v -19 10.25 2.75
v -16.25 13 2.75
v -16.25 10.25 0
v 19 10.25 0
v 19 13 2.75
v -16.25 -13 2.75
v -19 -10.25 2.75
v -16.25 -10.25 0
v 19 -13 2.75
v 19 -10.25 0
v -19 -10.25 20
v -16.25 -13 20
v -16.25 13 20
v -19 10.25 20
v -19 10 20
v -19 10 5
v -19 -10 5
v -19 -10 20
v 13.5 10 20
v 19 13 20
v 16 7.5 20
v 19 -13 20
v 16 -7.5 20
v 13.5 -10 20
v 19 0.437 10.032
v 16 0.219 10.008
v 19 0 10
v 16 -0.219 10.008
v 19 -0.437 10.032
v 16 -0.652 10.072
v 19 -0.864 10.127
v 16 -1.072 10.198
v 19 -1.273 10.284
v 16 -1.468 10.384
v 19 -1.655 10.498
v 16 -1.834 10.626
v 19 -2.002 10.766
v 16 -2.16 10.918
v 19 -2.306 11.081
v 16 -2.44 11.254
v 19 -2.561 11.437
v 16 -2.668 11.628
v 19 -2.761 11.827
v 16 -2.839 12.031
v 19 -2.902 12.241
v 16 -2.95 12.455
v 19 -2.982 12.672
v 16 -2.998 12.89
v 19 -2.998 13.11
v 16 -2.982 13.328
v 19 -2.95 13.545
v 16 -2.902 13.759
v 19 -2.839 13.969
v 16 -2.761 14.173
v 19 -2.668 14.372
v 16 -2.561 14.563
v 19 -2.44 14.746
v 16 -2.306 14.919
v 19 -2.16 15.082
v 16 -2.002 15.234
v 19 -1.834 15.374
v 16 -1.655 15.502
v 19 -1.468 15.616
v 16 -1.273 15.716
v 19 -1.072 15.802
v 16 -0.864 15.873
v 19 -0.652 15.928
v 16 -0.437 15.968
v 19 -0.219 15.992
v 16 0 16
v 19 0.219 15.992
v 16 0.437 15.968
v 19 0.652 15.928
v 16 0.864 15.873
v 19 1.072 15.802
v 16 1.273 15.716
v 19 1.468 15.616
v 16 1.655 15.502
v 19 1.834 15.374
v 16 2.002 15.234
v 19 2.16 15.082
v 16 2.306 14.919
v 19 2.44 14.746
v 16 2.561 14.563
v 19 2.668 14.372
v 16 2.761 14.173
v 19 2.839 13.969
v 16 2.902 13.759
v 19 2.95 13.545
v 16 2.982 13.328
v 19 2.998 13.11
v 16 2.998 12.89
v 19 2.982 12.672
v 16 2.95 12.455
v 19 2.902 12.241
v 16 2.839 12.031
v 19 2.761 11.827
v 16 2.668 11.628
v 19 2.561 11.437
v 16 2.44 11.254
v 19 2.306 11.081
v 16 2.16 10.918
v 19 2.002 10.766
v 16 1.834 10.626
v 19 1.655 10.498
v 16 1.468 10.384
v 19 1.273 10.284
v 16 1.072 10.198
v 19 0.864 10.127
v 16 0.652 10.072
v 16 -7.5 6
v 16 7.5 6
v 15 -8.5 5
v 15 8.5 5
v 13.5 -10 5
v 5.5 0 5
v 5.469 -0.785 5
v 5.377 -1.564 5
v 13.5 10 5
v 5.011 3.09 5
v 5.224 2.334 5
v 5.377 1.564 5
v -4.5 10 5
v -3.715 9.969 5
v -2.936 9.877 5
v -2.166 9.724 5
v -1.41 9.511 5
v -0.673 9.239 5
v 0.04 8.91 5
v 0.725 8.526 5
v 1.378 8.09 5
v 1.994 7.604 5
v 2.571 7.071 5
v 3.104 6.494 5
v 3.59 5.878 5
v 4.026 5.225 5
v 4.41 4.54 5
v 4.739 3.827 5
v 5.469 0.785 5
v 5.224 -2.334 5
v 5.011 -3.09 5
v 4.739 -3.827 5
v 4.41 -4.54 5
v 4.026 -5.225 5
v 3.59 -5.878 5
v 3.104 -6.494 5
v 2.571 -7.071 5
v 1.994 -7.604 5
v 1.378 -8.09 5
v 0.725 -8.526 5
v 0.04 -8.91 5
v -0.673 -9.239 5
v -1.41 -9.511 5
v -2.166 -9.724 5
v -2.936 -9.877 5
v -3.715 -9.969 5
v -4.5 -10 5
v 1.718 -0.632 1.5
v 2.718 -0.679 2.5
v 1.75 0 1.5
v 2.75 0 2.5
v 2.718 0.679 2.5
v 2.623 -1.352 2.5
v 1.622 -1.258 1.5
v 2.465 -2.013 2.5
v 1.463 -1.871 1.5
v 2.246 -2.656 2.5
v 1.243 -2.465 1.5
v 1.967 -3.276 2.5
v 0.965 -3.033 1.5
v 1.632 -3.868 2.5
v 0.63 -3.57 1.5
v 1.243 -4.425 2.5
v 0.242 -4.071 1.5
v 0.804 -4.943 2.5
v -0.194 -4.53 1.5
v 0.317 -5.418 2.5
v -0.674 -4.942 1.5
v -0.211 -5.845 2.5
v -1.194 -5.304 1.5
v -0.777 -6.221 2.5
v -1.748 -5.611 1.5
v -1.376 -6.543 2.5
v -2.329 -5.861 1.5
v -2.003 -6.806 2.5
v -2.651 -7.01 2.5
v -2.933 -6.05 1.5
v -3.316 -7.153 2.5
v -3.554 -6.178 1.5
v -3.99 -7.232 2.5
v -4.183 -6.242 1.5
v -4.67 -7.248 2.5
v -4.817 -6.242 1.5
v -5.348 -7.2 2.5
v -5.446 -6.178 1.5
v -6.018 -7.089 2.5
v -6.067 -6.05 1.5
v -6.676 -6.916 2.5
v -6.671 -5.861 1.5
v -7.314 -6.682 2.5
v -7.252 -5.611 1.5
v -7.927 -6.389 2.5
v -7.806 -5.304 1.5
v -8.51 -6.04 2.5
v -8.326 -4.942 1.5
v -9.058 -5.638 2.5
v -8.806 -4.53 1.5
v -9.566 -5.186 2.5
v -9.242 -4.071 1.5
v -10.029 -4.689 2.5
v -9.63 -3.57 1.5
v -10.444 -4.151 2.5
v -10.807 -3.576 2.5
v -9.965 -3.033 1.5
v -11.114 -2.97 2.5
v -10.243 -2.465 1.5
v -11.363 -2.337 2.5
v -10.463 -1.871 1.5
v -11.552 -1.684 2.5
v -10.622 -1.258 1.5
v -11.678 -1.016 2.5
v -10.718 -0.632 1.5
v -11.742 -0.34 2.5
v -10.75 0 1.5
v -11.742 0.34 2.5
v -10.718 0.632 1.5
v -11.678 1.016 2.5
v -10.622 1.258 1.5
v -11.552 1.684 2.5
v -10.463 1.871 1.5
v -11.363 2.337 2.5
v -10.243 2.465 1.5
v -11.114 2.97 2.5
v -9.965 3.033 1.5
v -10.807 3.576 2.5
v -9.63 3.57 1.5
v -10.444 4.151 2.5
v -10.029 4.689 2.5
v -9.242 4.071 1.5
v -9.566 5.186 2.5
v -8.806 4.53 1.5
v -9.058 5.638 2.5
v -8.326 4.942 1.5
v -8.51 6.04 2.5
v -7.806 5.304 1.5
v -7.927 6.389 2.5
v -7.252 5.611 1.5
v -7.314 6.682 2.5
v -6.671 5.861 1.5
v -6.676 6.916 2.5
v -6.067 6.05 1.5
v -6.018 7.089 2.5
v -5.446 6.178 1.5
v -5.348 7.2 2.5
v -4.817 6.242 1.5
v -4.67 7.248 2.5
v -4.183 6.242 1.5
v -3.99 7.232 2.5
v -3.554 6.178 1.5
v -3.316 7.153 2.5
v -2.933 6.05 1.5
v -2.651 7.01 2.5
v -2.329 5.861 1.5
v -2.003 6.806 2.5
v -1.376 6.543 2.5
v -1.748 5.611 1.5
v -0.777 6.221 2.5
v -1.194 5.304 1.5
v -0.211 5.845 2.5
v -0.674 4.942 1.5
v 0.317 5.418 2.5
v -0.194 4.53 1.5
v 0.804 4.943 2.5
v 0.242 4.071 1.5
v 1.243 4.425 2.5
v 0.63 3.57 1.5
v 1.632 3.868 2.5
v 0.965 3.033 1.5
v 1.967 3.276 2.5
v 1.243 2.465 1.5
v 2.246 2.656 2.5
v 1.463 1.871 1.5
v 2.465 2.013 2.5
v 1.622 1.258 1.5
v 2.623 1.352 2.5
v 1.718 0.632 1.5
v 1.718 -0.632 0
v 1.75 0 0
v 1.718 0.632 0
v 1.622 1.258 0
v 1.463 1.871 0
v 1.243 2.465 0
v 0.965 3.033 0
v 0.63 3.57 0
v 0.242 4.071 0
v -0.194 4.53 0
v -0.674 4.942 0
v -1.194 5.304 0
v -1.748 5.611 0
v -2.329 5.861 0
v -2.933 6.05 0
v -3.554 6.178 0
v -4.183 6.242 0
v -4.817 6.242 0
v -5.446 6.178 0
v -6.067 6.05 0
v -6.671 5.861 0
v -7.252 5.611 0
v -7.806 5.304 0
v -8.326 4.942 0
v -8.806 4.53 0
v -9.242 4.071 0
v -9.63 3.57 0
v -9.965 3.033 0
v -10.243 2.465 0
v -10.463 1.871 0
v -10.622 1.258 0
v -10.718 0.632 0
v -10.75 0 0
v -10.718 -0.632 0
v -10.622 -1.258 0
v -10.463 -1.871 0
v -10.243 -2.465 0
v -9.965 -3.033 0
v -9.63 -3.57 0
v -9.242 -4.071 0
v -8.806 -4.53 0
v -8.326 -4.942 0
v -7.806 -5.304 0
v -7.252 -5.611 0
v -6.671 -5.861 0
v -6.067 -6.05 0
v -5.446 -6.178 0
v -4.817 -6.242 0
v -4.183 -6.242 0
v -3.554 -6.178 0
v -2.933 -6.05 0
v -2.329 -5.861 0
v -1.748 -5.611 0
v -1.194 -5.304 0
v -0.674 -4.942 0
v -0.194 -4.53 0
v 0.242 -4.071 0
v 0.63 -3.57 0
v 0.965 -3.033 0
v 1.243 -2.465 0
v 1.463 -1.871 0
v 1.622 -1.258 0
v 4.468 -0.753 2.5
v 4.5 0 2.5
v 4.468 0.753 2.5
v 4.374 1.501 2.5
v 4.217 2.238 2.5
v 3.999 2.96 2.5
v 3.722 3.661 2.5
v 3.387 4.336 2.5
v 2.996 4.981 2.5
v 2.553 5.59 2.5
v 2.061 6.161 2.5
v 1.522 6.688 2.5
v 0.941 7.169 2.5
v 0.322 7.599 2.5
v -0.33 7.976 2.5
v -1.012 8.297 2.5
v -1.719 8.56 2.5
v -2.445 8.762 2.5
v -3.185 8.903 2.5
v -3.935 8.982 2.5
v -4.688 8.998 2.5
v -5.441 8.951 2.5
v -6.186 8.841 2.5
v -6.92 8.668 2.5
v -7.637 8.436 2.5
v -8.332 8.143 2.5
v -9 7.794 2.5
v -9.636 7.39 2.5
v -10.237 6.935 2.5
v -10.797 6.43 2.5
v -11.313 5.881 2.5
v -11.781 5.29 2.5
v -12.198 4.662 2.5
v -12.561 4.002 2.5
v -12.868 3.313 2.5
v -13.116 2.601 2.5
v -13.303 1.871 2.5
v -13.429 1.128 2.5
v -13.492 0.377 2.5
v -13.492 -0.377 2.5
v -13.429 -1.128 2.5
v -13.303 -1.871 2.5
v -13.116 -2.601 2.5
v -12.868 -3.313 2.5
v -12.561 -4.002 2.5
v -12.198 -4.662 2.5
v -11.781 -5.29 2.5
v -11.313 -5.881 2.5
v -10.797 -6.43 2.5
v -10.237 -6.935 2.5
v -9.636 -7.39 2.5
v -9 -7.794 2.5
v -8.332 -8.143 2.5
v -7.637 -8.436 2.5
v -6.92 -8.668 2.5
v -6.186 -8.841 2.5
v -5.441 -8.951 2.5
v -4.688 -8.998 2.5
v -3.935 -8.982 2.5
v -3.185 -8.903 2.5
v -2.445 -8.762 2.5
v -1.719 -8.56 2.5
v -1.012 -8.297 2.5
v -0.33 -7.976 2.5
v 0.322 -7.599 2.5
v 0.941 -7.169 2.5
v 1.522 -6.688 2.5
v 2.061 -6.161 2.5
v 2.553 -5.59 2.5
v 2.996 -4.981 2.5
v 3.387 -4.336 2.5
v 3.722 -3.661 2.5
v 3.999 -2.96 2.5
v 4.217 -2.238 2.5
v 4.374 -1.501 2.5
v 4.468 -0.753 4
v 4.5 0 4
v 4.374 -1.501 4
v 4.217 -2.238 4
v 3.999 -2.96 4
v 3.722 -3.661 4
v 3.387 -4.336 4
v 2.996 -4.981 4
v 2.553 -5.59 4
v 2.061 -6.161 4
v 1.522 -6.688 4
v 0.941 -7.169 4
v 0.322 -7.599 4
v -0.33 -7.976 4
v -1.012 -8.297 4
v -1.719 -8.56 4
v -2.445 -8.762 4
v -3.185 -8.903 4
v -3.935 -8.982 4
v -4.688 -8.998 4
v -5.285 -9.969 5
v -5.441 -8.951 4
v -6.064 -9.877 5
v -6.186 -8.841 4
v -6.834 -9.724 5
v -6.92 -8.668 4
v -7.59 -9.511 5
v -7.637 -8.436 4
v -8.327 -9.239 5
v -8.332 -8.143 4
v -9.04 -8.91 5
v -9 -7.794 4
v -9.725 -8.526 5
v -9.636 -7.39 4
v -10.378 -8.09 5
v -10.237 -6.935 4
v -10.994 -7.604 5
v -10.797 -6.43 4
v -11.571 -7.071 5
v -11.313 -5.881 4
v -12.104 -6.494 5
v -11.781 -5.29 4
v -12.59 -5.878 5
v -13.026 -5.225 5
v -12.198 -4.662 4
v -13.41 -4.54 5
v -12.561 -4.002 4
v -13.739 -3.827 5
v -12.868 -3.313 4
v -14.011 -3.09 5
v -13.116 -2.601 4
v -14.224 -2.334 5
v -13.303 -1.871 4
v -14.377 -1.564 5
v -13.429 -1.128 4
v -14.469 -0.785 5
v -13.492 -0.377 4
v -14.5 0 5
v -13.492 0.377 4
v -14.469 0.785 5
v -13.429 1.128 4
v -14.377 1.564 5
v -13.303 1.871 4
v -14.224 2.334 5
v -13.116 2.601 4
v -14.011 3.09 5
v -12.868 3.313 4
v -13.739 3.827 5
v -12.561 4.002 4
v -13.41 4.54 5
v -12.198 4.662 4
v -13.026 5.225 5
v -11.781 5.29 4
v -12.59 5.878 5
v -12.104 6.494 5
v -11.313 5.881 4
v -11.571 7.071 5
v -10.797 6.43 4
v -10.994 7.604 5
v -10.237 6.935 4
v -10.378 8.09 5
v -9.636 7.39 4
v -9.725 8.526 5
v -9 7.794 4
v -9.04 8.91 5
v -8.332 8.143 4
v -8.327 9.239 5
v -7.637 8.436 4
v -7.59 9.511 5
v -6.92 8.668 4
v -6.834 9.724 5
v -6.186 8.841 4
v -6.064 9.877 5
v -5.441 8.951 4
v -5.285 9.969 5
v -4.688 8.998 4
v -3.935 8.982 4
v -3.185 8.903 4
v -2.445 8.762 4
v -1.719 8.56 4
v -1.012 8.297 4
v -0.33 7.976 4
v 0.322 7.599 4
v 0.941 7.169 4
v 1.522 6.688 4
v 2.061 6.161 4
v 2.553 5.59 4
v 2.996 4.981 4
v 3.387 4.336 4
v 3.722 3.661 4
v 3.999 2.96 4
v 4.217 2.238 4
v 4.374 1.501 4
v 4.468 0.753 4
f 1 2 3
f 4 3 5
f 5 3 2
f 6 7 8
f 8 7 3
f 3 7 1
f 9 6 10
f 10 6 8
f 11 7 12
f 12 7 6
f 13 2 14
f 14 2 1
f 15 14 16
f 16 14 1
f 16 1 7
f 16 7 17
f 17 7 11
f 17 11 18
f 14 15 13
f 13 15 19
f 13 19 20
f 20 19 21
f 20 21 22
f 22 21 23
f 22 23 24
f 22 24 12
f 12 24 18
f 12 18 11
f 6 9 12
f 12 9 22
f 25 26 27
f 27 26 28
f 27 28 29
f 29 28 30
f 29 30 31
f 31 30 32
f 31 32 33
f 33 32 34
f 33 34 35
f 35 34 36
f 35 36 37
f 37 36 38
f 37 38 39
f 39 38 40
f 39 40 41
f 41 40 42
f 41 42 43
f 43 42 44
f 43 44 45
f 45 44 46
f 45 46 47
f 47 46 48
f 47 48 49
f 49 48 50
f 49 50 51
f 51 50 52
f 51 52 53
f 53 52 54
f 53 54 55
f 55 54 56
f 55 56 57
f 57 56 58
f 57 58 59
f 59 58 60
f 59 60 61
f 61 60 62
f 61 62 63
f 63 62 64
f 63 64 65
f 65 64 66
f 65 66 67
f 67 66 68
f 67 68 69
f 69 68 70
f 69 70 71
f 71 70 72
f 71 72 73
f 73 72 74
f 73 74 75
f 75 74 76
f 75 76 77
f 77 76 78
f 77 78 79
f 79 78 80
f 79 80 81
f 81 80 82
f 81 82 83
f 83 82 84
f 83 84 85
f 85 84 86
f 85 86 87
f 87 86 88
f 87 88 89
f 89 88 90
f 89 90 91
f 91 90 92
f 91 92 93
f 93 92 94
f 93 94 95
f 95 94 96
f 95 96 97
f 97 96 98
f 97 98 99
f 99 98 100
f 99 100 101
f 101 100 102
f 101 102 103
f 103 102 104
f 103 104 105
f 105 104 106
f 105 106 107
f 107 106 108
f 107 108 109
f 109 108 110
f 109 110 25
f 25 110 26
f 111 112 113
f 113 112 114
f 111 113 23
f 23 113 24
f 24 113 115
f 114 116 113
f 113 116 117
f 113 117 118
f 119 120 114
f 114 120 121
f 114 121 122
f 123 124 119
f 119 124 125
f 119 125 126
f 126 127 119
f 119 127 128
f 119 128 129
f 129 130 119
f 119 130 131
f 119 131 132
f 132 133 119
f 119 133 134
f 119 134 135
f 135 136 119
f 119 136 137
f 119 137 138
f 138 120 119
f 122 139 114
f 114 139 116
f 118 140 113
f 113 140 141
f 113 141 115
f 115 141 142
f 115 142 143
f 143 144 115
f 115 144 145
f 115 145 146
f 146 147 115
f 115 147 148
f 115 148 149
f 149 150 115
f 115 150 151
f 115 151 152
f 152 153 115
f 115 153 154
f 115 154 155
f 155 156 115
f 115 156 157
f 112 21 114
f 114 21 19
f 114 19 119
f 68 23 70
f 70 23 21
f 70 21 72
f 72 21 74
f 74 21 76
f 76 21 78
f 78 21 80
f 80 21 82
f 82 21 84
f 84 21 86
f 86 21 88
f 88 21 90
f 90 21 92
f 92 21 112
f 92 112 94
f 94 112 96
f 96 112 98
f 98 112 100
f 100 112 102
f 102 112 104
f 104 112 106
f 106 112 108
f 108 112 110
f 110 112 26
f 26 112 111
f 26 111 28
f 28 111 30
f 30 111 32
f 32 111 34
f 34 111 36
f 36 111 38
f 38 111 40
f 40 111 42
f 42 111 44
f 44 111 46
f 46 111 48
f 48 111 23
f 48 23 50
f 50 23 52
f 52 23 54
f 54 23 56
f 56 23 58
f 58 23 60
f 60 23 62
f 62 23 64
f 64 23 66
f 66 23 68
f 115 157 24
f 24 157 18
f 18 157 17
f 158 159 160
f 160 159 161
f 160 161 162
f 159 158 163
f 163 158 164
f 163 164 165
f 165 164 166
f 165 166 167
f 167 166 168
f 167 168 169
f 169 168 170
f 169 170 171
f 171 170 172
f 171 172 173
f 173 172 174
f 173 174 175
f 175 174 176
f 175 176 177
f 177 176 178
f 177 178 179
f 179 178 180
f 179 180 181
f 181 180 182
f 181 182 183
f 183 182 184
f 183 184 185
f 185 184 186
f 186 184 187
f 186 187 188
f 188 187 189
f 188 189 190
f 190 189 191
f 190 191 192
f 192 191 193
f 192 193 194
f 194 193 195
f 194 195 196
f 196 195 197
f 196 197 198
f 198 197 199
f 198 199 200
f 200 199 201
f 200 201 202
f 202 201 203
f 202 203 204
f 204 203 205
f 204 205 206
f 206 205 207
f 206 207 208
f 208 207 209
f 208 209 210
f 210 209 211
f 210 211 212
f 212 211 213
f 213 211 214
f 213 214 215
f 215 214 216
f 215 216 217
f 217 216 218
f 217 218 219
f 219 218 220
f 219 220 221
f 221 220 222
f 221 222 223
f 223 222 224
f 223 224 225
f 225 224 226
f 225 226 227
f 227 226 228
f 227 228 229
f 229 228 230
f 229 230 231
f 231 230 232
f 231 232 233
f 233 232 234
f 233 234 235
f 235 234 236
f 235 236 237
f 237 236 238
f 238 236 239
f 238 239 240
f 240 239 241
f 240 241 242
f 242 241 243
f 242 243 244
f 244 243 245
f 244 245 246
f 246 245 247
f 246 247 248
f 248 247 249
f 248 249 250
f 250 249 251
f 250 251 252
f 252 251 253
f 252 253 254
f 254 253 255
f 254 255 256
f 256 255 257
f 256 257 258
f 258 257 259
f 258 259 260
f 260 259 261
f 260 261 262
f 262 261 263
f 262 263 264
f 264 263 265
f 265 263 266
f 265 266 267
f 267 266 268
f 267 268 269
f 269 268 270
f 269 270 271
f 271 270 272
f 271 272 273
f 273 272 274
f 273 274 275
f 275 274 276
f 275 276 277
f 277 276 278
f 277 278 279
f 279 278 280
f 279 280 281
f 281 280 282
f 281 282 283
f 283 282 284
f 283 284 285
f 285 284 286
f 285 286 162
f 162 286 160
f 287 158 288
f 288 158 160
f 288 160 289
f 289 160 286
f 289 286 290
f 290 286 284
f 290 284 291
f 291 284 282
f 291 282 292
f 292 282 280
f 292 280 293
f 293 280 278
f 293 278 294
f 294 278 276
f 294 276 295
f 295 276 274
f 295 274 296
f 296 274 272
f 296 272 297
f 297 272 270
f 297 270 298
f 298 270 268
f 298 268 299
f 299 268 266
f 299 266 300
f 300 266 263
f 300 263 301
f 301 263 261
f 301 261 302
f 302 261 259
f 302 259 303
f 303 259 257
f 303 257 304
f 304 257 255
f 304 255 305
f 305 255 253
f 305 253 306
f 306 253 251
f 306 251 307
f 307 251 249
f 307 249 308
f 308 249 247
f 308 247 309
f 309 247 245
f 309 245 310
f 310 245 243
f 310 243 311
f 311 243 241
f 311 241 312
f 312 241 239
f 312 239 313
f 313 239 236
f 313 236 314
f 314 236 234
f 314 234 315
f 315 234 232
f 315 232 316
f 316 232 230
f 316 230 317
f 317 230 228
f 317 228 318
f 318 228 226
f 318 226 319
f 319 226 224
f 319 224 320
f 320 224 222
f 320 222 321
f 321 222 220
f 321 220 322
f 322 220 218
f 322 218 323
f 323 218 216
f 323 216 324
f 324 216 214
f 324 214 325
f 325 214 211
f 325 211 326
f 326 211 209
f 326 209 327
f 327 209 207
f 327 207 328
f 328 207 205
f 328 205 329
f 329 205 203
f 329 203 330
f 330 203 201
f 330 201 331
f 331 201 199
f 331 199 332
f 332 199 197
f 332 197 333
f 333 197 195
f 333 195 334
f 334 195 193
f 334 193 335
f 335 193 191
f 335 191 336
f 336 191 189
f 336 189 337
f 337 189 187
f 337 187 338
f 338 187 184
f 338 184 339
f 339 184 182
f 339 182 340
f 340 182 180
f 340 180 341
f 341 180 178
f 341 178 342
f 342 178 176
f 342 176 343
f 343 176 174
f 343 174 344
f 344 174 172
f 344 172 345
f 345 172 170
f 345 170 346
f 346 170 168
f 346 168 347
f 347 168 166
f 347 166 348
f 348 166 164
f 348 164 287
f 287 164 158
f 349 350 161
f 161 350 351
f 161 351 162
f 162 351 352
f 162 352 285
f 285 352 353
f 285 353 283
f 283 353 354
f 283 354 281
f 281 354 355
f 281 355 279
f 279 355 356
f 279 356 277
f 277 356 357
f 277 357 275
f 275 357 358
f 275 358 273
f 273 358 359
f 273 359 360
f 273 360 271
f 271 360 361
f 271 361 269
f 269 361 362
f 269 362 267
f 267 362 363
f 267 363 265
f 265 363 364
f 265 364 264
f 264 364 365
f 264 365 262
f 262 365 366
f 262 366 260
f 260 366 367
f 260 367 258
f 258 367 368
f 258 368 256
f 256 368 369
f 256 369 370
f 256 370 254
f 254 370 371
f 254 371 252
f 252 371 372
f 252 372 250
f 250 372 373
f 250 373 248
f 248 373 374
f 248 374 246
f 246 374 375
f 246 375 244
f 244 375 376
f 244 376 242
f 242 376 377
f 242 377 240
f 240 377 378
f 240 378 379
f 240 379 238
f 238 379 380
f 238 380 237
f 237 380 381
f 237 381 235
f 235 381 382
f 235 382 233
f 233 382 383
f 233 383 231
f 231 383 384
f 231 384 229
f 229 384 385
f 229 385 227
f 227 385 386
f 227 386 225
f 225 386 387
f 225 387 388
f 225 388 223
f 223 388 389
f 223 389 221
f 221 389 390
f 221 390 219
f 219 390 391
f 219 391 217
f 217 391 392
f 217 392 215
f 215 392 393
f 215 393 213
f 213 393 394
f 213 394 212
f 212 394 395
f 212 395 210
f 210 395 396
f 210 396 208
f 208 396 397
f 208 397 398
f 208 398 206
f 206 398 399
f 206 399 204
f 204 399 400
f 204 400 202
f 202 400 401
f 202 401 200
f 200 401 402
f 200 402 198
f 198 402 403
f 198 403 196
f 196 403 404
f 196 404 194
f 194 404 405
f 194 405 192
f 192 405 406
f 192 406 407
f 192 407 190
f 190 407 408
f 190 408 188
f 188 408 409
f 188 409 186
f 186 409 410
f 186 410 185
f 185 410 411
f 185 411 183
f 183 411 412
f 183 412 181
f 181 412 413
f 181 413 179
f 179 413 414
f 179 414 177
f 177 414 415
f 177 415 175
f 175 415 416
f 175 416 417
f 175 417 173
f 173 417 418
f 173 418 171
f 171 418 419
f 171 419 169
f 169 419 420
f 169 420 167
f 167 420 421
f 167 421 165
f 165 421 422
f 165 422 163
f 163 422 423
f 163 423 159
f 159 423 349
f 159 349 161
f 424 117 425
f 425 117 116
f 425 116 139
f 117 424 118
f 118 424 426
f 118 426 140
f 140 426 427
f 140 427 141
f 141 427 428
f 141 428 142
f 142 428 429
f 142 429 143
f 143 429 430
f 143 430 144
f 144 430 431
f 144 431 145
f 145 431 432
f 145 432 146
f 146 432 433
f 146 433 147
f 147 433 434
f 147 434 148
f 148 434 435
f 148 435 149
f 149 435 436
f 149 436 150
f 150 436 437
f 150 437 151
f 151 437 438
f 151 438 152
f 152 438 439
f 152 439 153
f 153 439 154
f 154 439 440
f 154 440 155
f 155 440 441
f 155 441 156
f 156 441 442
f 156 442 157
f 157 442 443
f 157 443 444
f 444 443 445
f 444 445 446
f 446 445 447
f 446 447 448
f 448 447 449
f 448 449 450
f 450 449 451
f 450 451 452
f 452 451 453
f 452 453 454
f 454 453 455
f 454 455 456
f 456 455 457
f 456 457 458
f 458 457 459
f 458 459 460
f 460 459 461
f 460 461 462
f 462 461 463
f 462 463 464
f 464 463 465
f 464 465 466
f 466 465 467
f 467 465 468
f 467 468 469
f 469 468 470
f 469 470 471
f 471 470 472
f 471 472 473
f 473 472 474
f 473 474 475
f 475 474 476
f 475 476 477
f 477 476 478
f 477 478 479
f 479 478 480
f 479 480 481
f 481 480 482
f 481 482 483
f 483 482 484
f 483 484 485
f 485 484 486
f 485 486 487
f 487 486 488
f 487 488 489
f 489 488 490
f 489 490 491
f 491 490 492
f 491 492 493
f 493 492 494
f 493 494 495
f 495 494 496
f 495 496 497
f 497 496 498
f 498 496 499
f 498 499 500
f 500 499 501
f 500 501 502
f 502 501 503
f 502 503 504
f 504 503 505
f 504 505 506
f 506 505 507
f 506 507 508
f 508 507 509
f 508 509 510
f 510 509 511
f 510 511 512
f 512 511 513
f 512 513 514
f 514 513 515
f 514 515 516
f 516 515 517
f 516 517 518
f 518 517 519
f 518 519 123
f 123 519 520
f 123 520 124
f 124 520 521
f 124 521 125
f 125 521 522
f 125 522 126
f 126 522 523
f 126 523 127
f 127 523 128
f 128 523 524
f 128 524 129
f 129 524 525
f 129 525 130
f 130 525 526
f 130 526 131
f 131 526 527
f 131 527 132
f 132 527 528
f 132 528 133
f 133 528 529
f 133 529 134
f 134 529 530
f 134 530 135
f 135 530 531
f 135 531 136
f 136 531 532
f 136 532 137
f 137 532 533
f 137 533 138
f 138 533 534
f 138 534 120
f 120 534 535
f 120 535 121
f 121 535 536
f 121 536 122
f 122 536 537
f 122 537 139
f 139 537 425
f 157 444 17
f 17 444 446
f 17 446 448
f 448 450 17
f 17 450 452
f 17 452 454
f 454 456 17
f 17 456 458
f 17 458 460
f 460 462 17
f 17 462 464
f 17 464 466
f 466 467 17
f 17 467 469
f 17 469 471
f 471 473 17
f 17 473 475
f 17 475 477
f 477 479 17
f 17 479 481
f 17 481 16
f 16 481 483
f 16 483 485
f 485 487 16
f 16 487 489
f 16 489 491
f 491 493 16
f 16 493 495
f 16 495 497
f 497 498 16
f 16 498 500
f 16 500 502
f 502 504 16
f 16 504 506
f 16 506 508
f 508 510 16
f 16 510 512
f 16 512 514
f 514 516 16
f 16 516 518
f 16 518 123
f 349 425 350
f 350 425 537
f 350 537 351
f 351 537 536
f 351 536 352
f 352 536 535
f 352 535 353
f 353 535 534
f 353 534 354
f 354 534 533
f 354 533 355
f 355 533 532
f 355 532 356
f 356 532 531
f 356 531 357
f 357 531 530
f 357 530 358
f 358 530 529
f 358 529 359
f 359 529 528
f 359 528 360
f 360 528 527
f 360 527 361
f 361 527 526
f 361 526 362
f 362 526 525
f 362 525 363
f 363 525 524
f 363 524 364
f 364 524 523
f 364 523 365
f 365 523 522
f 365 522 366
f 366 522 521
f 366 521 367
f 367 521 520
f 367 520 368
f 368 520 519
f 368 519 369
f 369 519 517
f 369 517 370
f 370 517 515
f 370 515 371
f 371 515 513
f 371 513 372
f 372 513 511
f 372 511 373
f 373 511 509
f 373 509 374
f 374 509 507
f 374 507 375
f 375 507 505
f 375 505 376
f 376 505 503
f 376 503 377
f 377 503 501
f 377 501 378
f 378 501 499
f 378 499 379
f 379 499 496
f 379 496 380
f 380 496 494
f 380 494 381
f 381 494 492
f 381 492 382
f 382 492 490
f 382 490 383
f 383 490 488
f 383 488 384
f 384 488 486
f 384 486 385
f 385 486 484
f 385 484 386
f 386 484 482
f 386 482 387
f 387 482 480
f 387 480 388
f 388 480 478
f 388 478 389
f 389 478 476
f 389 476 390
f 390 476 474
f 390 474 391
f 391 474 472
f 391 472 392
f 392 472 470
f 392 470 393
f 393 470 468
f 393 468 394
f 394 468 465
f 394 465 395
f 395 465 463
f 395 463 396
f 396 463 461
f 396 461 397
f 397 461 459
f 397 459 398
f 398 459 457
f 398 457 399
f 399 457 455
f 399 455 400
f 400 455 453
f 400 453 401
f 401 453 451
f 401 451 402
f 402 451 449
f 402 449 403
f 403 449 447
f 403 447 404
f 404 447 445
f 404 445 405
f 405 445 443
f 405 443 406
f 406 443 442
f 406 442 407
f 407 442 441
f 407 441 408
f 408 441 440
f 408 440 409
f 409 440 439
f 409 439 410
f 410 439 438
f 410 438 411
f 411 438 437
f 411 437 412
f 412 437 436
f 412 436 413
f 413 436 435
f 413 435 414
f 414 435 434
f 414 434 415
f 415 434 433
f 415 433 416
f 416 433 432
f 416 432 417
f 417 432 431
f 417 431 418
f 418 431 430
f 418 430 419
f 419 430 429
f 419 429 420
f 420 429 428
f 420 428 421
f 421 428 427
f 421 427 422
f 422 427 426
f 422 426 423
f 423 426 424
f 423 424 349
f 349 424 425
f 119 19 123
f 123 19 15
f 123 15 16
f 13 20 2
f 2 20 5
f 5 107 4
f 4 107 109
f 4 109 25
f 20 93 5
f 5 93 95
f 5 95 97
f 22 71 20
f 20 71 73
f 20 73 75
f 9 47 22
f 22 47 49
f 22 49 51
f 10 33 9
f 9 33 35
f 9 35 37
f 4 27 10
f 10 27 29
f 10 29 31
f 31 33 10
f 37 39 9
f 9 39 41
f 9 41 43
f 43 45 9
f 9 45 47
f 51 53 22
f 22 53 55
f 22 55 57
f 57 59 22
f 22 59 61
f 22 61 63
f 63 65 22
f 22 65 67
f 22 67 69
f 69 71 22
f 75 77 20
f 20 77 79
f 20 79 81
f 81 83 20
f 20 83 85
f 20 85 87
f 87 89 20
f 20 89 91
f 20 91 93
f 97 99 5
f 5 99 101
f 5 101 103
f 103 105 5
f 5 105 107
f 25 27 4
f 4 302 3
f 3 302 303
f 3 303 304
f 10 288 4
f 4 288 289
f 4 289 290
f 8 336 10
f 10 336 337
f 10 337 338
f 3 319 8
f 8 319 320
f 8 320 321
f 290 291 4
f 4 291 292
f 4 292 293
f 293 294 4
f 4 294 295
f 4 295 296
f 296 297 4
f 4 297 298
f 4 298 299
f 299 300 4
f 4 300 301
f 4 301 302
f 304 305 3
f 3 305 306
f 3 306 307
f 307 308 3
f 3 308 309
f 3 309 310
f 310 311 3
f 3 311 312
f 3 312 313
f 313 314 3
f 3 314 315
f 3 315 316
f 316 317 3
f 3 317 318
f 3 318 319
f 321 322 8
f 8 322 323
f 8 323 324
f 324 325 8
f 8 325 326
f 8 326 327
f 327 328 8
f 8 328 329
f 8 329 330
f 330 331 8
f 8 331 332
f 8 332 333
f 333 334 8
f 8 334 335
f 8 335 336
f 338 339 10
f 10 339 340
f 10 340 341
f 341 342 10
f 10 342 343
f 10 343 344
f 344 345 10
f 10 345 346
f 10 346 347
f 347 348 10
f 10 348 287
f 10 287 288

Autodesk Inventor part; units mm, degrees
ref_plane "YZ Plane" through (0, 0, 0) normal (1, 0, 0) x (0, 1, 0)
ref_plane "XZ Plane" through (0, 0, 0) normal (0, 1, 0) x (-1, 0, 0)
ref_plane "XY Plane" through (0, 0, 0) normal (0, 0, 1) x (1, 0, 0)
sketch "Sketch1" plane through (0, 0, 0) normal (0, 0, 1) x (1, 0, 0)
  line L0 (-19, -13) -> (19, -13)
  line L1 (19, -13) -> (19, 13)
  line L2 (19, 13) -> (-19, 13)
  line L3 (-19, 13) -> (-19, -13)
  line L4 (-19, -13) -> (19, 13) construction
  line L5 (19, -13) -> (-19, 13) construction
  point P0 (0, 0)
  dimension "d0" = 26
  dimension "d1" = 38
extrude "Extrusion1" add sketch "Sketch1" along normal blind 20
sketch "Sketch2" plane through (0, 0, 20) normal (0, 0, 1) x (1, 0, 0)
  line L0 (-26.6, 0) -> (26.6, 0) projected
  line L1 (-19, 10) -> (10, 10)
  line L2 (10, 10) -> (10, -10)
  line L3 (10, -10) -> (-19, -10)
  line L4 (-19, -10) -> (-19, 10)
  line L5 (-19, 10) -> (10, -10) construction
  line L6 (10, 10) -> (-19, -10) construction
  line L7 (19, 13) -> (-19, 13) projected
  line L8 (19, -13) -> (19, 13) projected
  line L9 (-19, 13) -> (-19, -13) projected
  line L10 (10, 10) -> (16, 10)
  line L11 (16, 10) -> (16, -10)
  line L12 (16, -10) -> (10, -10)
  line L13 (10, -10) -> (10, 10)
  point P0 (0, 0)
  point P1 (-4.5, 0)
  point P2 (-19, 0)
  dimension "d5" = 20
  dimension "d7" = 29
  dimension "d8" = 9
  dimension "d9" = 3
extrude "Extrusion2" cut sketch "Sketch2" against normal blind 15 contours L4 L1 L2 L0 | L0 L2 L3 L4 | L2 L10 L11 L0 | L0 L11 L12 L2
sketch "Sketch3" plane through (0, 0, 5) normal (0, 0, 1) x (1, 0, 0)
  line L0 (-26.6, 0) -> (26.6, 0) projected
  circle A0 centre (-4.5, 0) radius 9
  line L1 (-19, -10) -> (-19, 10) projected
  point P0 (0, 0)
  dimension "d12" = 18
  dimension "d13" = 14.5
extrude "Extrusion3" cut sketch "Sketch3" against normal blind 2.5
sketch "Sketch4" plane through (-4.5, 0, 2.5) normal (0, 0, 1) x (1, 0, 0)
  circle A0 centre (0, 0) radius 9 projected
  circle A1 centre (0, 0) radius 6.25
  point P0 (4.5, 0)
  dimension "d16" = 12.5
extrude "Extrusion4" cut sketch "Sketch4" against normal blind 2.5 contours A1
chamfer "Chamfer1" distance 1 angle 45 1 edges at (-13.5, 0, 5)
chamfer "Chamfer2" distance 1 angle 45 1 edges at (-10.75, 0, 2.5)
chamfer "Chamfer3" distance 2.5 angle 45 2 edges at (16, -10, 12.5) (16, 10, 12.5)
chamfer "Chamfer5" distance 1 angle 45 1 edges at (16, 0, 5)
sketch "Sketch5" plane through (16, -7.5, 20) normal (-1, 0, 0) x (0, 0, 1)
  line L0 (-24, 7.5) -> (4, 7.5) projected
  circle A0 centre (-7, 7.5) radius 3
  line L1 (0, 15) -> (0, 0) projected
  point P0 (-20, 7.5)
  dimension "d34" = 6
  dimension "d35" = 7
extrude "Extrusion5" cut sketch "Sketch5" against normal through all
chamfer "Chamfer6" distance 2.75 angle 45 5 edges at (0, -13, 0) (-19, 0, 0) (0, 13, 0) (-19, 13, 10) (-19, -13, 10)
properties part number "_3DPrint"
